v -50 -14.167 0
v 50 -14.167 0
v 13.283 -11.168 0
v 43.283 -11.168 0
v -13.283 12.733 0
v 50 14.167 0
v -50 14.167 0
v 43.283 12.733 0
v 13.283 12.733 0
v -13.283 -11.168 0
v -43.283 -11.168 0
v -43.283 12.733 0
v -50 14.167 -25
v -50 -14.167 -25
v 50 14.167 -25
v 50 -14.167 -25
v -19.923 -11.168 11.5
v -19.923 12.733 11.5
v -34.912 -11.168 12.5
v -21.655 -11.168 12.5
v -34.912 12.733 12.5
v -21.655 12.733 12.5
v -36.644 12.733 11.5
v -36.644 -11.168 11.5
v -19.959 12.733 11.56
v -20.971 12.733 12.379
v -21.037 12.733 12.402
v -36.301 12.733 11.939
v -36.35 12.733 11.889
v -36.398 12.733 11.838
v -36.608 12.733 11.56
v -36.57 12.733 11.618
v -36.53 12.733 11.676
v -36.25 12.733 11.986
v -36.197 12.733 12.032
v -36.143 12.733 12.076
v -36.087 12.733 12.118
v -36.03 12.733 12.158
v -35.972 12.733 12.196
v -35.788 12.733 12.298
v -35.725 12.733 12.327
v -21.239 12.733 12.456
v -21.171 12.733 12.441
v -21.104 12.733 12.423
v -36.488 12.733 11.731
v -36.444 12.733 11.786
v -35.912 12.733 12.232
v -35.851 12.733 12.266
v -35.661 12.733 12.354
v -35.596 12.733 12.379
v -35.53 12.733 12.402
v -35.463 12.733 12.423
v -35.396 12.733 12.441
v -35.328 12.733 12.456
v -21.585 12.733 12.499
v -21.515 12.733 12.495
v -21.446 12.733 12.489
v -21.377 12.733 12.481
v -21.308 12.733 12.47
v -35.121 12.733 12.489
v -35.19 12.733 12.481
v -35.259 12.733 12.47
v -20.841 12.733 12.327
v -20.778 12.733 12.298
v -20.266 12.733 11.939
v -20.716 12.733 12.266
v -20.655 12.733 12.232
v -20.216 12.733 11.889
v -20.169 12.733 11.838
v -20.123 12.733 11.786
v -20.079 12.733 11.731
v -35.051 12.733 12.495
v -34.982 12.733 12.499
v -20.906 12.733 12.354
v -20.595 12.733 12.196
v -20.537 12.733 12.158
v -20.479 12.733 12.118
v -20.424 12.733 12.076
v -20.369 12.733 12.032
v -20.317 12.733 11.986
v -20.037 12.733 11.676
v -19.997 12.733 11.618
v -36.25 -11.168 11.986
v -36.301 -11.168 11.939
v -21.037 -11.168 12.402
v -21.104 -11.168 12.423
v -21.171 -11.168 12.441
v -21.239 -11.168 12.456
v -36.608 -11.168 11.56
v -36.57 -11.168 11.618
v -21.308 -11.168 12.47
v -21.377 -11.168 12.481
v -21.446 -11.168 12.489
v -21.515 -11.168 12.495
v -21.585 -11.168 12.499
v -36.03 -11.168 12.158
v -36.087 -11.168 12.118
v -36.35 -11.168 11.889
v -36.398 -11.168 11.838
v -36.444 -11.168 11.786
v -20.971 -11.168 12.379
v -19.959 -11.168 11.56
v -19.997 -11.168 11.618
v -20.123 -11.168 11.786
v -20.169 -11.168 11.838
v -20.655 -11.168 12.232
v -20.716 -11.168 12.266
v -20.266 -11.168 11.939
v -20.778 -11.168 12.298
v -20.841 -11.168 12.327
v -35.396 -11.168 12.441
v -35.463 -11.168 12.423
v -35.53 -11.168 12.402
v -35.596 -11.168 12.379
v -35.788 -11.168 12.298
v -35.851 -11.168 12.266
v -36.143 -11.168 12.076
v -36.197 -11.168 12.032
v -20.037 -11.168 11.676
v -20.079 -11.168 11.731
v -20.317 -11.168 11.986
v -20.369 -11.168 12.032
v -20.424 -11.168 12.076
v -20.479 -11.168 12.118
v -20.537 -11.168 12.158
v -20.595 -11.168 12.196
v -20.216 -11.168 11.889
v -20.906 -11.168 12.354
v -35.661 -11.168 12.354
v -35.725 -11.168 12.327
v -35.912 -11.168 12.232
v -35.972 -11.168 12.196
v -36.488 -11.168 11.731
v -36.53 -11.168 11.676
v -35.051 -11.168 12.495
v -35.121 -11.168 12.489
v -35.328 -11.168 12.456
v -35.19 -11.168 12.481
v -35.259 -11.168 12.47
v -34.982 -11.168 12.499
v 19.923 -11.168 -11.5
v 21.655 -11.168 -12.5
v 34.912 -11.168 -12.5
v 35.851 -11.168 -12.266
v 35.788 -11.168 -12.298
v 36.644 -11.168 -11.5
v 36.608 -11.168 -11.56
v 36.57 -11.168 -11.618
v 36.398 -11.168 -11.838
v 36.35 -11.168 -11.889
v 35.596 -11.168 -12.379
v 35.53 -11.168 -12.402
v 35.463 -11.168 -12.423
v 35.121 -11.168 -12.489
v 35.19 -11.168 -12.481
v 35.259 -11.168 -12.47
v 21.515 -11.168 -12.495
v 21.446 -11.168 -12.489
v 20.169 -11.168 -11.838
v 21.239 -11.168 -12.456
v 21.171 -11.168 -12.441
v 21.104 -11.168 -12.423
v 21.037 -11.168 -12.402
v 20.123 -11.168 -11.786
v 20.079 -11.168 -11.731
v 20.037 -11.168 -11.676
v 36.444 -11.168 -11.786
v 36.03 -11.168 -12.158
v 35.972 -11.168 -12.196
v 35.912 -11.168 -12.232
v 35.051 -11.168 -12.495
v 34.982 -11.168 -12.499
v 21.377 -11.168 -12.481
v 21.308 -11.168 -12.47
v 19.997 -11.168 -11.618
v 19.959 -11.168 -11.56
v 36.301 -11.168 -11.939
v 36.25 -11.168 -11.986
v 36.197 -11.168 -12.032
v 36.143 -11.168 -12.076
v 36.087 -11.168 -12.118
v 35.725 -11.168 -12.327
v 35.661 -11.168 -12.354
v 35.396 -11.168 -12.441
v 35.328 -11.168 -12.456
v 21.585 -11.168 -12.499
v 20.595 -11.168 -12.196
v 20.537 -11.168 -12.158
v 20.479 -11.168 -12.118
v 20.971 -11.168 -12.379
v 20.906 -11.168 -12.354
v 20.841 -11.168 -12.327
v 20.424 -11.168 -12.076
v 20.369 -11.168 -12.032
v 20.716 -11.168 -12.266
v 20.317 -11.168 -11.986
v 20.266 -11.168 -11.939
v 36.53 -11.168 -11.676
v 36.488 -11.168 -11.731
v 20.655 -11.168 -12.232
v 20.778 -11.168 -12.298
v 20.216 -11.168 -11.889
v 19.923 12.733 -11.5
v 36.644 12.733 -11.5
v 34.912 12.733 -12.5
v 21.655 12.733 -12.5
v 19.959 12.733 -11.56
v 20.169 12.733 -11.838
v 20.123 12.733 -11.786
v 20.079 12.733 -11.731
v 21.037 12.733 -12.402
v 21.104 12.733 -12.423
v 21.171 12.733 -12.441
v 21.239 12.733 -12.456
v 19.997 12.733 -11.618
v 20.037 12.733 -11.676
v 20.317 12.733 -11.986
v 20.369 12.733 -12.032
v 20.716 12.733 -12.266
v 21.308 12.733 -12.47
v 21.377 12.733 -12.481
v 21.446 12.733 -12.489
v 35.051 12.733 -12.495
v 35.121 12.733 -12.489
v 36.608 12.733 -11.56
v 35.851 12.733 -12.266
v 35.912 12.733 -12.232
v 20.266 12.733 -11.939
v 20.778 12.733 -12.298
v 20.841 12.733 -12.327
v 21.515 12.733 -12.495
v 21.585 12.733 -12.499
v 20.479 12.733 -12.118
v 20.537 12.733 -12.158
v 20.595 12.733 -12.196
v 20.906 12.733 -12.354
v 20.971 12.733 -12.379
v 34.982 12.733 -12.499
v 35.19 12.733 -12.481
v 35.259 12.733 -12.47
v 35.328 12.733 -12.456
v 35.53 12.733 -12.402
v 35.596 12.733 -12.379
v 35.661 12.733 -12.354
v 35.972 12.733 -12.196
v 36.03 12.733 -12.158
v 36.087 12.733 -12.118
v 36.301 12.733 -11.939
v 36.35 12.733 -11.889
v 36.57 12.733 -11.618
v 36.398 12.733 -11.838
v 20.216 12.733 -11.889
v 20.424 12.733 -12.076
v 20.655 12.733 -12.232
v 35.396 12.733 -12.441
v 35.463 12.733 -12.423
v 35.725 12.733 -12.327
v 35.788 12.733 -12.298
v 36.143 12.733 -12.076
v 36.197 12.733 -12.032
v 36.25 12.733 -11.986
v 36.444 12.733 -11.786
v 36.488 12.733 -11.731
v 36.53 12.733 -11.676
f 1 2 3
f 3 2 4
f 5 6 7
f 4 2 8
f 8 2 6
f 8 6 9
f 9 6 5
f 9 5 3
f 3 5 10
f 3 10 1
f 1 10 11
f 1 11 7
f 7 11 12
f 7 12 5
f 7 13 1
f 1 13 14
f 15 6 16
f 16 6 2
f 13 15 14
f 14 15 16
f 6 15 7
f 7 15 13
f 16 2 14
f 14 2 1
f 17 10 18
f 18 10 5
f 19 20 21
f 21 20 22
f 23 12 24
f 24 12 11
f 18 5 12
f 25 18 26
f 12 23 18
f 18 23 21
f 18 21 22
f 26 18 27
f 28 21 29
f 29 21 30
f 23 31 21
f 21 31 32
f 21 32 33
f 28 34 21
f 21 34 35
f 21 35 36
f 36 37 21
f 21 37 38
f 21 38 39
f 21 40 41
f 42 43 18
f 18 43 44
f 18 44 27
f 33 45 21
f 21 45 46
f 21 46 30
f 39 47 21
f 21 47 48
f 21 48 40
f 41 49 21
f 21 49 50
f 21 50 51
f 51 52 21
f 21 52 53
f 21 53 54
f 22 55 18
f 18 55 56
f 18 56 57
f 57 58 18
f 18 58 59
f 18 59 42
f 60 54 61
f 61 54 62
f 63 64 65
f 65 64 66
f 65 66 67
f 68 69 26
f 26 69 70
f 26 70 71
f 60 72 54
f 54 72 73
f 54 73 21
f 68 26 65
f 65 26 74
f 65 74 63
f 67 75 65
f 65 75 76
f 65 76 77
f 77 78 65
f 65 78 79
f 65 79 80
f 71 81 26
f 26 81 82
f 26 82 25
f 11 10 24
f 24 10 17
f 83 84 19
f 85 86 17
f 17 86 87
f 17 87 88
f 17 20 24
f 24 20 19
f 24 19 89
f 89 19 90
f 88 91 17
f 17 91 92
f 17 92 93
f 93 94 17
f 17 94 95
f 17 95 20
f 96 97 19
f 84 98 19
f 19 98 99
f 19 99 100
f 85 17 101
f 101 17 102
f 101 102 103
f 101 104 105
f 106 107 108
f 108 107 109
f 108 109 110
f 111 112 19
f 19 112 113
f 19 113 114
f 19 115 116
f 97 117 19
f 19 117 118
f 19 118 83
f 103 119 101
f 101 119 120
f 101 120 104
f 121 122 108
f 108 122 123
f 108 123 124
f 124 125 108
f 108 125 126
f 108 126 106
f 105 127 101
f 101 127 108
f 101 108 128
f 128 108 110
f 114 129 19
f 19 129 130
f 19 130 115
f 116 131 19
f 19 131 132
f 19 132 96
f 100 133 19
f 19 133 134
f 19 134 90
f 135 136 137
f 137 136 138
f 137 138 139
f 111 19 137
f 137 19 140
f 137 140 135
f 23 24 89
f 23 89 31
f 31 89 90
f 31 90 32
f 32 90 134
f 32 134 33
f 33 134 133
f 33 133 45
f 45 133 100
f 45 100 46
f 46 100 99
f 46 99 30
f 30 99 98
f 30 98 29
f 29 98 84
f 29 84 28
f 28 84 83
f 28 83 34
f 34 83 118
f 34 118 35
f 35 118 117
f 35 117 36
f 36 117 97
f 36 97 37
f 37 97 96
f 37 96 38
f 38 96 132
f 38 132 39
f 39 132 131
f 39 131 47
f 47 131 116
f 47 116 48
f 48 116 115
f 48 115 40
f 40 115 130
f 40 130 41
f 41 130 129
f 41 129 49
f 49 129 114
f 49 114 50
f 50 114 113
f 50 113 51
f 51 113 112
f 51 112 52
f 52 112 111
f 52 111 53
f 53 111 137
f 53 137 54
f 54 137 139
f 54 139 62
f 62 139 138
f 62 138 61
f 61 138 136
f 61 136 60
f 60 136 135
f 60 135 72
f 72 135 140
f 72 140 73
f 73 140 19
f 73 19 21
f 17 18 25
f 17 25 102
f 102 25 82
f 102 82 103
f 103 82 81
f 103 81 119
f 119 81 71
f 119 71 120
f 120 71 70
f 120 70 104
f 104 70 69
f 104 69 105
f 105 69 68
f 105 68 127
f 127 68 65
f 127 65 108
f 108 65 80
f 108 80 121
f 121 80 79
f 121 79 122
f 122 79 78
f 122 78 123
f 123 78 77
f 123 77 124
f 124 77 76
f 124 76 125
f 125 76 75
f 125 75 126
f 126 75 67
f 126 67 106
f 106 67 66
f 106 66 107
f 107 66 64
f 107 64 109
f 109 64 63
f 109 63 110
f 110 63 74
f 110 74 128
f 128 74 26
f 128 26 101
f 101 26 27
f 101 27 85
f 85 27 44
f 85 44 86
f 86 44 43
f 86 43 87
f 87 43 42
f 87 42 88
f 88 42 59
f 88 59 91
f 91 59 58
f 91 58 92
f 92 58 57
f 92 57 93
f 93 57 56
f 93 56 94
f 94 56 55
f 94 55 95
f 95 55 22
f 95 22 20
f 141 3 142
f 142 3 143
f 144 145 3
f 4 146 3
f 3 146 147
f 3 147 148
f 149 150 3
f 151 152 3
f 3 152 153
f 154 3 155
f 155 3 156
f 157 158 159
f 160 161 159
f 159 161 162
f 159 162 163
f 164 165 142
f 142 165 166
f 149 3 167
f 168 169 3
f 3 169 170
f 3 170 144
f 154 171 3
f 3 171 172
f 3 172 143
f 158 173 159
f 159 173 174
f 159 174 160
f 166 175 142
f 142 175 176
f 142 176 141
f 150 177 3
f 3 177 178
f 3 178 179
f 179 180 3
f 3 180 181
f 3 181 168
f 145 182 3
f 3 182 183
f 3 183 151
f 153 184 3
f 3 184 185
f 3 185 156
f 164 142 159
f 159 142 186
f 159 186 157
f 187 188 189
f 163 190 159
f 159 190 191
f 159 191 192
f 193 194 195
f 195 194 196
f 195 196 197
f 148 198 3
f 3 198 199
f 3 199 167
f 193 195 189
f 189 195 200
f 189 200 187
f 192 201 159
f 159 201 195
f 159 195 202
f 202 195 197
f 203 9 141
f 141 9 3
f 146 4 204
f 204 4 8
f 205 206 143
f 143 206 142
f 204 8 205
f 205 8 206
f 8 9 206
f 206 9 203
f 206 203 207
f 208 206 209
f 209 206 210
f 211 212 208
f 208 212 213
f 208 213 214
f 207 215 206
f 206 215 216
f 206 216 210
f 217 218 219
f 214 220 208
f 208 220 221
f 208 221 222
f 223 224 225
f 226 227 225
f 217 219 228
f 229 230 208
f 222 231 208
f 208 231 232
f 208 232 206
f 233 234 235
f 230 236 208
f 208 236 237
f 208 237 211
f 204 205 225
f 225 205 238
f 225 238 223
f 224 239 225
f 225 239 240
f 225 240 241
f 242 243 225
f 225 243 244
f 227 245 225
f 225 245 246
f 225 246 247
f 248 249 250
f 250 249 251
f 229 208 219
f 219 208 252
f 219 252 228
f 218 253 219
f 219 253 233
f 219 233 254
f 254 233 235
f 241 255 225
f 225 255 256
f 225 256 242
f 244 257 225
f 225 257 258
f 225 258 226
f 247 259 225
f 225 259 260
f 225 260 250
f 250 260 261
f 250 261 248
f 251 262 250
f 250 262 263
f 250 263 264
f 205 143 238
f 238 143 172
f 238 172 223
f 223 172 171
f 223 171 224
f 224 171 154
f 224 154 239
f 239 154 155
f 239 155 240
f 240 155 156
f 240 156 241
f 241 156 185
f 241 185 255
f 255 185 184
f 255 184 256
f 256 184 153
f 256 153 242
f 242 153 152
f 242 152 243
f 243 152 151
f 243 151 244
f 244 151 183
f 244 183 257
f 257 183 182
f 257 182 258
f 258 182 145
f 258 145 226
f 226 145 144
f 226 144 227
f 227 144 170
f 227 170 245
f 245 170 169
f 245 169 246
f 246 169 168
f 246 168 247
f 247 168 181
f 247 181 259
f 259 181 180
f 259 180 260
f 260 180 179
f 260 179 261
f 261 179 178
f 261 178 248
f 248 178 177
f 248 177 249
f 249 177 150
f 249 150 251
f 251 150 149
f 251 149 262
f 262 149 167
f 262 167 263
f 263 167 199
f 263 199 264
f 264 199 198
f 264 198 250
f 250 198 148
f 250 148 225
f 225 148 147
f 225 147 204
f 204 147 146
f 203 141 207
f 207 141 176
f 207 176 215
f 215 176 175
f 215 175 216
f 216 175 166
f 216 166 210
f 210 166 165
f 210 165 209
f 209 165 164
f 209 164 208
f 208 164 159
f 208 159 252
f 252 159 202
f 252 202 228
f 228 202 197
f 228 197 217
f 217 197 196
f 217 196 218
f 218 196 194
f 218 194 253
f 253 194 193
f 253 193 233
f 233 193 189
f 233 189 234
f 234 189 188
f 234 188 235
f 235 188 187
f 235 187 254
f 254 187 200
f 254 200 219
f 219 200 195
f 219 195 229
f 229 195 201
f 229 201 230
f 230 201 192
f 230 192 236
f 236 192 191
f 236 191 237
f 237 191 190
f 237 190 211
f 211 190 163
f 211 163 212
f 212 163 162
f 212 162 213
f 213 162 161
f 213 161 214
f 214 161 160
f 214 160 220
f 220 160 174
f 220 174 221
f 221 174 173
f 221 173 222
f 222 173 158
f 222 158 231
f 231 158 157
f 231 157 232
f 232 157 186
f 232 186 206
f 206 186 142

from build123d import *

# Parameters (mm, degrees)
SKETCH1_W                = 100
SKETCH1_H                = 25
BOSS_EXTRUDE1_DEPTH      = 14.1675
BOSS_EXTRUDE2_DEPTH      = 12.7325
BOSS_EXTRUDE2_DEPTH_BACK = 11.1675
FILLET1_R                = 2
CUT_EXTRUDE1_DEPTH       = 12.7325
CUT_EXTRUDE1_DEPTH_BACK  = 11.1675
FILLET2_R                = 2


with BuildPart() as part:
    # Sketch1 → Boss-Extrude1 (new, symmetric)
    with BuildSketch(Plane(origin=(0, 0, 0), x_dir=(1, 0, 0), z_dir=(0, 1, 0))):
        with Locations((0, 12.5)):
            Rectangle(SKETCH1_W, SKETCH1_H)
    extrude(amount=BOSS_EXTRUDE1_DEPTH, both=True)

    # Sketch2 → Boss-Extrude2 (add, two sides: drawn at the far end of the back side and taken through both)
    with BuildSketch(Plane(origin=(0, 0, 0), x_dir=(1, 0, 0), z_dir=(0, 1, 0)).offset(-BOSS_EXTRUDE2_DEPTH_BACK)):
        Polygon((-43.283333333, 0), (-13.283333333, 0), (-20.500211698, -12.5), (-36.066454968, -12.5), align=None)
    extrude(amount=BOSS_EXTRUDE2_DEPTH + BOSS_EXTRUDE2_DEPTH_BACK)

    # Fillet1
    fillet1_edges = [part.edges().sort_by_distance(p)[0] for p in [
        (-20.500211698, 0.7825, 12.5),
        (-36.066454968, 0.7825, 12.5),
    ]]
    fillet(fillet1_edges, radius=FILLET1_R)

    # Sketch2<3> → Cut-Extrude1 (cut, two sides: drawn at the far end of the back side and taken through both)
    with BuildSketch(Plane(origin=(0, 0, 0), x_dir=(1, 0, 0), z_dir=(0, 1, 0)).offset(-CUT_EXTRUDE1_DEPTH_BACK)):
        Polygon((36.066454968, 12.5), (20.500211698, 12.5), (13.283333333, 0), (43.283333333, 0), align=None)
    extrude(amount=CUT_EXTRUDE1_DEPTH + CUT_EXTRUDE1_DEPTH_BACK, mode=Mode.SUBTRACT)

    # Fillet2
    fillet2_edges = [part.edges().sort_by_distance(p)[0] for p in [
        (36.066454968, 0.7825, -12.5),
        (20.500211698, 0.7825, -12.5),
    ]]
    fillet(fillet2_edges, radius=FILLET2_R)


solid = part.part
